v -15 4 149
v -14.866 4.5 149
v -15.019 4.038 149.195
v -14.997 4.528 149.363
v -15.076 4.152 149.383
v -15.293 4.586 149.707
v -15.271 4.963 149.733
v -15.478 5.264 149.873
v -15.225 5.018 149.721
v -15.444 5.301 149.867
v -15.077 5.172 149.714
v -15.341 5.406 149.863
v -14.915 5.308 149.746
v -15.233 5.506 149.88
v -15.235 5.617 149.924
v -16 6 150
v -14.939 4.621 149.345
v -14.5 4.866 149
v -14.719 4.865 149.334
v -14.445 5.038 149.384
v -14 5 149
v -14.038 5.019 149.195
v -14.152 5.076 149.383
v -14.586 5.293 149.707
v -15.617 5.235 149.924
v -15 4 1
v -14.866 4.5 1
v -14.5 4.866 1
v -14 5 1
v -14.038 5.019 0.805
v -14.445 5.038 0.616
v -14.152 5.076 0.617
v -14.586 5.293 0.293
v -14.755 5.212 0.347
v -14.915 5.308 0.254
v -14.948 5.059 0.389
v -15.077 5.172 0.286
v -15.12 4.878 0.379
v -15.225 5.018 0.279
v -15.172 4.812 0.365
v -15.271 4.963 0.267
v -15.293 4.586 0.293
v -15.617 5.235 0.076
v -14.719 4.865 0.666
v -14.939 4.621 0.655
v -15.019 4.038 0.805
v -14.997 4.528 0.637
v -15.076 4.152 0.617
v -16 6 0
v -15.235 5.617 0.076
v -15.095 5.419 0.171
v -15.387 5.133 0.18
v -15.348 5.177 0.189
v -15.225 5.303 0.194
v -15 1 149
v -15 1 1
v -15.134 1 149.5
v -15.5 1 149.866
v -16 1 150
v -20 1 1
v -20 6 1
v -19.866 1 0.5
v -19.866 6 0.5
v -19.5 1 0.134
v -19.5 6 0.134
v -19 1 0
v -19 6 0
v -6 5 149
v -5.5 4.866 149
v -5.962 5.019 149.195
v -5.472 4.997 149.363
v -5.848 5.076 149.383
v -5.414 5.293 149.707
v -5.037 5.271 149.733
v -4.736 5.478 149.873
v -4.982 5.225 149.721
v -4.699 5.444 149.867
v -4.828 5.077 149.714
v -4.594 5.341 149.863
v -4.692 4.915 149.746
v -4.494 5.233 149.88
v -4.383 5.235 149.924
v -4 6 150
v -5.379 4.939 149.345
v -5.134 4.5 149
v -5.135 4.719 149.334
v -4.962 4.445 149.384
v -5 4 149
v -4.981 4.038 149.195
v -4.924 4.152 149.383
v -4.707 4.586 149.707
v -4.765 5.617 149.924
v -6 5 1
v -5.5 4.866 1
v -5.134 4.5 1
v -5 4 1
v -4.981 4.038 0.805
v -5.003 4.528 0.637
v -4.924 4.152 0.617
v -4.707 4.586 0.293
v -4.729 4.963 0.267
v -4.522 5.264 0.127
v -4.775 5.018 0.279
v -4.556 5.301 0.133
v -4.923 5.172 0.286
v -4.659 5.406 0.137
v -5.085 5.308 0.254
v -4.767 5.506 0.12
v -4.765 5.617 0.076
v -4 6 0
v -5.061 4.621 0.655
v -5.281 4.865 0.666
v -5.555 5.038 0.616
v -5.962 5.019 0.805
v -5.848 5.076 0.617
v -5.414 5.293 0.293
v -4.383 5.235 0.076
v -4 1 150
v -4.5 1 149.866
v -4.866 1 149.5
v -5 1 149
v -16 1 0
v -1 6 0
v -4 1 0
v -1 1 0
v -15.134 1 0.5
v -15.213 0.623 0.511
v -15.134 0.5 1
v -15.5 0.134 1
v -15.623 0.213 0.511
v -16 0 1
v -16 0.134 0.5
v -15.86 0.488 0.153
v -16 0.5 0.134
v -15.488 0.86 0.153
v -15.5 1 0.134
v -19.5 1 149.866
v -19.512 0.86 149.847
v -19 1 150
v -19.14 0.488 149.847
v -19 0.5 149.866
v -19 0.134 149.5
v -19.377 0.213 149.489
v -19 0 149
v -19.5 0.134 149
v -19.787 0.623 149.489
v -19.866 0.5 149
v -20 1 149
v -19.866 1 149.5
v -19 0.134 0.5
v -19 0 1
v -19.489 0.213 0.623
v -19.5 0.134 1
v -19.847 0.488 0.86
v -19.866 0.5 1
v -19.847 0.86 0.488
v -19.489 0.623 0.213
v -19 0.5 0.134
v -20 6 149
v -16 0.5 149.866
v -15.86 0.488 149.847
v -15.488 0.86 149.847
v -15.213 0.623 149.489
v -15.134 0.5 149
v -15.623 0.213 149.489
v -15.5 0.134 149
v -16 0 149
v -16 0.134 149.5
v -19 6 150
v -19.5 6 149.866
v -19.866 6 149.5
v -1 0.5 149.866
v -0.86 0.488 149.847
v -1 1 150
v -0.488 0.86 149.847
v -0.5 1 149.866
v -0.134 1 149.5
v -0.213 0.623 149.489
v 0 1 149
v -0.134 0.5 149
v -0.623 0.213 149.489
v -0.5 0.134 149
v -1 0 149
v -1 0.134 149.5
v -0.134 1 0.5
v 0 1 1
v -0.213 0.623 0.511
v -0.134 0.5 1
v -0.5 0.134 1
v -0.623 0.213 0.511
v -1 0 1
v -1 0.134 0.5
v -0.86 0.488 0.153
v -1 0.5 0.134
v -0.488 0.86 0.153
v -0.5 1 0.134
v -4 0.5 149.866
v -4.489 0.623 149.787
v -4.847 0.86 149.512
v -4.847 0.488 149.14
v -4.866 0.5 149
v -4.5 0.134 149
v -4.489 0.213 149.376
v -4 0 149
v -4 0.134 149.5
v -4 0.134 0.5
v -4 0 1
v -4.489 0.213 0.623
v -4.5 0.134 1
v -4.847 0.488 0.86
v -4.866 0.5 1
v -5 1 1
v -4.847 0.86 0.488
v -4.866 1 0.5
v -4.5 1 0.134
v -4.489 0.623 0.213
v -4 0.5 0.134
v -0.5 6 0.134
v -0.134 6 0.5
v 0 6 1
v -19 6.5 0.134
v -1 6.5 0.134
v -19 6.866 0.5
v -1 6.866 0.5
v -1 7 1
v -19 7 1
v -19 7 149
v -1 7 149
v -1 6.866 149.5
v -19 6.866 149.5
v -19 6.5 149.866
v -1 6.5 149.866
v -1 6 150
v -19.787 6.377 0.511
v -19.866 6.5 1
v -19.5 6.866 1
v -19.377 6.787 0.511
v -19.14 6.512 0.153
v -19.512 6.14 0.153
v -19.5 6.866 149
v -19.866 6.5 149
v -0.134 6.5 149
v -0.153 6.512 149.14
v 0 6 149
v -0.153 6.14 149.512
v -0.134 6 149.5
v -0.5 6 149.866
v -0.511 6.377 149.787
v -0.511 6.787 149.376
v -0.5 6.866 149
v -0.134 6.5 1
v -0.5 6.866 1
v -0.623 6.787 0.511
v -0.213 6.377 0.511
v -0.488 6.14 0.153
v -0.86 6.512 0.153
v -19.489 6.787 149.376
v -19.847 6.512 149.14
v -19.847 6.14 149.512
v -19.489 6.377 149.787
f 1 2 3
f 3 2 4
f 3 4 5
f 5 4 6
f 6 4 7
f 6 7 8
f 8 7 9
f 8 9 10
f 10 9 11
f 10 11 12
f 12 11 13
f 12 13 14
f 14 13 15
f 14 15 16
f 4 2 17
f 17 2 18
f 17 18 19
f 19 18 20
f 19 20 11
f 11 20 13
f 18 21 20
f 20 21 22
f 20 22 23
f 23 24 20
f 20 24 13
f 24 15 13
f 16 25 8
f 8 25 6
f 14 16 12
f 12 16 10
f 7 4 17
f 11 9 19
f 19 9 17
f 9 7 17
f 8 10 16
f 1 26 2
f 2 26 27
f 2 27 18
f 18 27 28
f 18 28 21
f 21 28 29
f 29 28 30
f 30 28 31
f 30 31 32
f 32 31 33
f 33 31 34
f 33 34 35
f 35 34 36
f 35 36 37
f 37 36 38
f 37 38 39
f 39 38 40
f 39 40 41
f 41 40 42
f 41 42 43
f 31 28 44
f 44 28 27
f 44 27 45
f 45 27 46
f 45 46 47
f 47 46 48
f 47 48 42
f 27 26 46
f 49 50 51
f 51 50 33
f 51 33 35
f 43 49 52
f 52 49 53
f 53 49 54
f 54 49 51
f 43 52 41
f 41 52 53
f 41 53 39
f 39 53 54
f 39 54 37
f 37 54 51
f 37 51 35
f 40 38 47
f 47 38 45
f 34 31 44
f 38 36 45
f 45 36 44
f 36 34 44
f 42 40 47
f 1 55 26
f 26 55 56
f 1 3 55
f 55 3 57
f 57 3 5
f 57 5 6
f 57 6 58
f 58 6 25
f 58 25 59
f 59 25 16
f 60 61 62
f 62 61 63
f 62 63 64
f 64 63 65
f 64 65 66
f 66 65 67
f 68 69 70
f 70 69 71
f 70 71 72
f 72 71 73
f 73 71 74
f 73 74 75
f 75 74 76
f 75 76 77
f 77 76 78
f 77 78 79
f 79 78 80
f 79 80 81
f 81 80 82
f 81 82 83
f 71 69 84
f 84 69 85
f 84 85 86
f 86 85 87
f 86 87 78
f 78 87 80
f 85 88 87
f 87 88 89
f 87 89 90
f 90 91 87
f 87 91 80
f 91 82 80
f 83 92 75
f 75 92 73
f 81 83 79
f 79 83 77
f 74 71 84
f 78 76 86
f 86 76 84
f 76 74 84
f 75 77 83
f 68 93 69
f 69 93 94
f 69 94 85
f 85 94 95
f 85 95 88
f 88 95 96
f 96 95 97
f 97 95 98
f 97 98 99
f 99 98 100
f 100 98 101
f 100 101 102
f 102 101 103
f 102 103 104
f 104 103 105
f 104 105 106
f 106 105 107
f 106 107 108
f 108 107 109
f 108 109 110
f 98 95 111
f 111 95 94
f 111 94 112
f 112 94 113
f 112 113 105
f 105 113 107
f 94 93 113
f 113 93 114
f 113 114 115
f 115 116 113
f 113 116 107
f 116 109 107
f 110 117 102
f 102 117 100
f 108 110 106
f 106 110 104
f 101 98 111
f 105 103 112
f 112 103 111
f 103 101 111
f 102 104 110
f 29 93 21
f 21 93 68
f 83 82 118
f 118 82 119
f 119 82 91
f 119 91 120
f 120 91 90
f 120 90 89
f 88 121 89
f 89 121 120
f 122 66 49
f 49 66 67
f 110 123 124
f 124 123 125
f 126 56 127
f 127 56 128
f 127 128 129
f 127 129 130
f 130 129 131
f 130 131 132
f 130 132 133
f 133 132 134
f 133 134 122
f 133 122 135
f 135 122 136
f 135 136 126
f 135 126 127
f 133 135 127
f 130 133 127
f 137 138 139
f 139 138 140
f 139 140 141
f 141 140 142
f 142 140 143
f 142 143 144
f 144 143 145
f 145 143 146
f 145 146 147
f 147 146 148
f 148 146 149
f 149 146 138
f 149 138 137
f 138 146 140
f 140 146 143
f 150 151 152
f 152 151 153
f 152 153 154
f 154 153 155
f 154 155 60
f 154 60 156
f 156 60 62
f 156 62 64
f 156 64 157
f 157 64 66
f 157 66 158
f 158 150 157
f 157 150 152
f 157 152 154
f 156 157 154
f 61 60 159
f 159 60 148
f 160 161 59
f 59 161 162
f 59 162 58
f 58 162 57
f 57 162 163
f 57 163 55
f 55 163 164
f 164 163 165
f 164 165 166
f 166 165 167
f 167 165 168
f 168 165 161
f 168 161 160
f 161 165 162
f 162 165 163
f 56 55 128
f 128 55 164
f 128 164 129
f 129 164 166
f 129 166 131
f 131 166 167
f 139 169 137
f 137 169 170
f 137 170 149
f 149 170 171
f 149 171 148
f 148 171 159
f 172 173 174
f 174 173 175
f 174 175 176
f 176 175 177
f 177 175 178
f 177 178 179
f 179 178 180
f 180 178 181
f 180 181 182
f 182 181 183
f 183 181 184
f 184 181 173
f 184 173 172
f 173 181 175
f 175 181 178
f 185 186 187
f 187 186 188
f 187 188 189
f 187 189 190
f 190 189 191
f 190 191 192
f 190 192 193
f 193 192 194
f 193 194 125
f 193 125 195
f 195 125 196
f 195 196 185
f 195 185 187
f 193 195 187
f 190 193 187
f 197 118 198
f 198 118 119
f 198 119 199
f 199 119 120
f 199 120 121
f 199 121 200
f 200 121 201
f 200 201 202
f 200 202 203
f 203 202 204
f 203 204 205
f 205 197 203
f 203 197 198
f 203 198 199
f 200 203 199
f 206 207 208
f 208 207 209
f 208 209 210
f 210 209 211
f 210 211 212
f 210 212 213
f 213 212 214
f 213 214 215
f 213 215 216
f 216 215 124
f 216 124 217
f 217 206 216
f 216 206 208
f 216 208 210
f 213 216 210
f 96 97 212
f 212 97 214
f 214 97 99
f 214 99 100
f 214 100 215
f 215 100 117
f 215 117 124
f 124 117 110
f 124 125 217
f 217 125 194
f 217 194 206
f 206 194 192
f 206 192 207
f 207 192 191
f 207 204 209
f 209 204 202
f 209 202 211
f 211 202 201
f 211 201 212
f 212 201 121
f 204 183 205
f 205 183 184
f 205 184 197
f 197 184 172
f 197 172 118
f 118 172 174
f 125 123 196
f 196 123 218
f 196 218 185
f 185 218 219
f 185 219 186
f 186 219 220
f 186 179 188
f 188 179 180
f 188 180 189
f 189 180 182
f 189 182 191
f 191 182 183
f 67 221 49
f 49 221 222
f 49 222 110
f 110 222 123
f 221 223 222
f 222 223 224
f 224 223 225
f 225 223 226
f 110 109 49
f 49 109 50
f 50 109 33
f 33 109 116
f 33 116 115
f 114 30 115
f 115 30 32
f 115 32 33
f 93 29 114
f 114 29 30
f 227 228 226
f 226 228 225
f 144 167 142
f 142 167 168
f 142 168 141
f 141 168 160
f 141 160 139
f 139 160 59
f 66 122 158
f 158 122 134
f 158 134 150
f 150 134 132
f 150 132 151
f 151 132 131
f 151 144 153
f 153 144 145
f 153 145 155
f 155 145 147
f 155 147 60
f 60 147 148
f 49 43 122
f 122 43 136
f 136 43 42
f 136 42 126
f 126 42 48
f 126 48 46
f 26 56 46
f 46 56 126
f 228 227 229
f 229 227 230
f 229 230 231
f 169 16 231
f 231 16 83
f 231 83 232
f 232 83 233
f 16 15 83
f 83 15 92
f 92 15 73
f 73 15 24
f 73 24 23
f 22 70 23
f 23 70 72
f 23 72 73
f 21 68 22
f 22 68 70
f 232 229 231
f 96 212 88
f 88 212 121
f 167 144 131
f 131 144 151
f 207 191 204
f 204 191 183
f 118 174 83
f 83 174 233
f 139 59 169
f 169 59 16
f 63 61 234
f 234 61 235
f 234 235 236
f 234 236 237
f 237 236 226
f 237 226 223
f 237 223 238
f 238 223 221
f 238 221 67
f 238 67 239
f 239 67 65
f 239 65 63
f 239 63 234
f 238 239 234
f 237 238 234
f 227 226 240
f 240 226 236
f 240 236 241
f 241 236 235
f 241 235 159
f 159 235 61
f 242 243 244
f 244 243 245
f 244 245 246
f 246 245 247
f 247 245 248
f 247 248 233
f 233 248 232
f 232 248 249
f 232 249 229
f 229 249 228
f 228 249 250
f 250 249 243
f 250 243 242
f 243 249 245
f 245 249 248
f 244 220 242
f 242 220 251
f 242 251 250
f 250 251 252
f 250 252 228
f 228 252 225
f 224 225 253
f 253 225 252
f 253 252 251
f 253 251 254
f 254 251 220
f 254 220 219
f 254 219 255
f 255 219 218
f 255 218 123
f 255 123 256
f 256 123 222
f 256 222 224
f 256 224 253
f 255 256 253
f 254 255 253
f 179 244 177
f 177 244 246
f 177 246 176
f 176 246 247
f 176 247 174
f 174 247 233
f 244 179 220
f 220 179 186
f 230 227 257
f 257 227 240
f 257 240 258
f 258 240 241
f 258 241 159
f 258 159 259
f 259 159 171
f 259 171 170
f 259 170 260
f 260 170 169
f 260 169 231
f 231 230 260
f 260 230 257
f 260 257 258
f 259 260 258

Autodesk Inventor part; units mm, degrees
ref_plane "YZ Plane" through (0, 0, 0) normal (1, 0, 0) x (0, 1, 0)
ref_plane "XZ Plane" through (0, 0, 0) normal (0, 1, 0) x (-1, 0, 0)
ref_plane "XY Plane" through (0, 0, 0) normal (0, 0, 1) x (1, 0, 0)
sketch "Sketch3" plane through (0, 0, 0) normal (0, 0, 1) x (1, 0, 0)
  line L0 (0, 0) -> (0, 7)
  line L1 (0, 7) -> (-20, 7)
  line L2 (-20, 7) -> (-20, 0)
  line L3 (-20, 0) -> (-15, 0)
  line L4 (-15, 0) -> (-15, 5)
  line L5 (-15, 5) -> (-5, 5)
  line L6 (-15, 5) -> (-5, 5) construction
  line L7 (-5, 5) -> (-5, 0)
  line L8 (-5, 0) -> (0, 0)
  dimension "d22" = 7
  dimension "d23" = 20
  dimension "d24" = 90
  dimension "d25" = 7
  dimension "d26" = 90
  dimension "d27" = 5
  dimension "d28" = 90
  dimension "d29" = 5
  dimension "d30" = 10
  dimension "d31" = 0
  dimension "d32" = 5
  dimension "d33" = 90
extrude "Extrusion3" add sketch "Sketch3" along normal blind 150
fillet "Fillet4" radius 1 20 edges at (-15, 2.5, 150) (-10, 5, 150) (-5, 2.5, 150) (-5, 2.5, 0) (-5, 0, 75) (-2.5, 0, 150) (0, 3.5, 150) (0, 0, 75) (0, 3.5, 0) (-10, 7, 150) (-20, 3.5, 150) (-17.5, 0, 150) (-15, 0, 75) (-15, 2.5, 0) (-20, 3.5, 0) (-20, 0, 75) (-10, 7, 0) (-10, 5, 0) (-2.5, 0, 0) (-17.5, 0, 0)
fillet "Fillet5" radius 1 2 edges at (-4.7071, 5.2929, 149.7071) (-15.2929, 5.2929, 149.7071)
fillet "Fillet6" radius 1 6 edges at (-0.2929, 6.7071, 149.7071) (-0.2929, 6.7071, 0.2929) (0, 7, 75) (-19.7071, 6.7071, 149.7071) (-19.7071, 6.7071, 0.2929) (-20, 7, 75)
properties part number "Cable_Cover"
